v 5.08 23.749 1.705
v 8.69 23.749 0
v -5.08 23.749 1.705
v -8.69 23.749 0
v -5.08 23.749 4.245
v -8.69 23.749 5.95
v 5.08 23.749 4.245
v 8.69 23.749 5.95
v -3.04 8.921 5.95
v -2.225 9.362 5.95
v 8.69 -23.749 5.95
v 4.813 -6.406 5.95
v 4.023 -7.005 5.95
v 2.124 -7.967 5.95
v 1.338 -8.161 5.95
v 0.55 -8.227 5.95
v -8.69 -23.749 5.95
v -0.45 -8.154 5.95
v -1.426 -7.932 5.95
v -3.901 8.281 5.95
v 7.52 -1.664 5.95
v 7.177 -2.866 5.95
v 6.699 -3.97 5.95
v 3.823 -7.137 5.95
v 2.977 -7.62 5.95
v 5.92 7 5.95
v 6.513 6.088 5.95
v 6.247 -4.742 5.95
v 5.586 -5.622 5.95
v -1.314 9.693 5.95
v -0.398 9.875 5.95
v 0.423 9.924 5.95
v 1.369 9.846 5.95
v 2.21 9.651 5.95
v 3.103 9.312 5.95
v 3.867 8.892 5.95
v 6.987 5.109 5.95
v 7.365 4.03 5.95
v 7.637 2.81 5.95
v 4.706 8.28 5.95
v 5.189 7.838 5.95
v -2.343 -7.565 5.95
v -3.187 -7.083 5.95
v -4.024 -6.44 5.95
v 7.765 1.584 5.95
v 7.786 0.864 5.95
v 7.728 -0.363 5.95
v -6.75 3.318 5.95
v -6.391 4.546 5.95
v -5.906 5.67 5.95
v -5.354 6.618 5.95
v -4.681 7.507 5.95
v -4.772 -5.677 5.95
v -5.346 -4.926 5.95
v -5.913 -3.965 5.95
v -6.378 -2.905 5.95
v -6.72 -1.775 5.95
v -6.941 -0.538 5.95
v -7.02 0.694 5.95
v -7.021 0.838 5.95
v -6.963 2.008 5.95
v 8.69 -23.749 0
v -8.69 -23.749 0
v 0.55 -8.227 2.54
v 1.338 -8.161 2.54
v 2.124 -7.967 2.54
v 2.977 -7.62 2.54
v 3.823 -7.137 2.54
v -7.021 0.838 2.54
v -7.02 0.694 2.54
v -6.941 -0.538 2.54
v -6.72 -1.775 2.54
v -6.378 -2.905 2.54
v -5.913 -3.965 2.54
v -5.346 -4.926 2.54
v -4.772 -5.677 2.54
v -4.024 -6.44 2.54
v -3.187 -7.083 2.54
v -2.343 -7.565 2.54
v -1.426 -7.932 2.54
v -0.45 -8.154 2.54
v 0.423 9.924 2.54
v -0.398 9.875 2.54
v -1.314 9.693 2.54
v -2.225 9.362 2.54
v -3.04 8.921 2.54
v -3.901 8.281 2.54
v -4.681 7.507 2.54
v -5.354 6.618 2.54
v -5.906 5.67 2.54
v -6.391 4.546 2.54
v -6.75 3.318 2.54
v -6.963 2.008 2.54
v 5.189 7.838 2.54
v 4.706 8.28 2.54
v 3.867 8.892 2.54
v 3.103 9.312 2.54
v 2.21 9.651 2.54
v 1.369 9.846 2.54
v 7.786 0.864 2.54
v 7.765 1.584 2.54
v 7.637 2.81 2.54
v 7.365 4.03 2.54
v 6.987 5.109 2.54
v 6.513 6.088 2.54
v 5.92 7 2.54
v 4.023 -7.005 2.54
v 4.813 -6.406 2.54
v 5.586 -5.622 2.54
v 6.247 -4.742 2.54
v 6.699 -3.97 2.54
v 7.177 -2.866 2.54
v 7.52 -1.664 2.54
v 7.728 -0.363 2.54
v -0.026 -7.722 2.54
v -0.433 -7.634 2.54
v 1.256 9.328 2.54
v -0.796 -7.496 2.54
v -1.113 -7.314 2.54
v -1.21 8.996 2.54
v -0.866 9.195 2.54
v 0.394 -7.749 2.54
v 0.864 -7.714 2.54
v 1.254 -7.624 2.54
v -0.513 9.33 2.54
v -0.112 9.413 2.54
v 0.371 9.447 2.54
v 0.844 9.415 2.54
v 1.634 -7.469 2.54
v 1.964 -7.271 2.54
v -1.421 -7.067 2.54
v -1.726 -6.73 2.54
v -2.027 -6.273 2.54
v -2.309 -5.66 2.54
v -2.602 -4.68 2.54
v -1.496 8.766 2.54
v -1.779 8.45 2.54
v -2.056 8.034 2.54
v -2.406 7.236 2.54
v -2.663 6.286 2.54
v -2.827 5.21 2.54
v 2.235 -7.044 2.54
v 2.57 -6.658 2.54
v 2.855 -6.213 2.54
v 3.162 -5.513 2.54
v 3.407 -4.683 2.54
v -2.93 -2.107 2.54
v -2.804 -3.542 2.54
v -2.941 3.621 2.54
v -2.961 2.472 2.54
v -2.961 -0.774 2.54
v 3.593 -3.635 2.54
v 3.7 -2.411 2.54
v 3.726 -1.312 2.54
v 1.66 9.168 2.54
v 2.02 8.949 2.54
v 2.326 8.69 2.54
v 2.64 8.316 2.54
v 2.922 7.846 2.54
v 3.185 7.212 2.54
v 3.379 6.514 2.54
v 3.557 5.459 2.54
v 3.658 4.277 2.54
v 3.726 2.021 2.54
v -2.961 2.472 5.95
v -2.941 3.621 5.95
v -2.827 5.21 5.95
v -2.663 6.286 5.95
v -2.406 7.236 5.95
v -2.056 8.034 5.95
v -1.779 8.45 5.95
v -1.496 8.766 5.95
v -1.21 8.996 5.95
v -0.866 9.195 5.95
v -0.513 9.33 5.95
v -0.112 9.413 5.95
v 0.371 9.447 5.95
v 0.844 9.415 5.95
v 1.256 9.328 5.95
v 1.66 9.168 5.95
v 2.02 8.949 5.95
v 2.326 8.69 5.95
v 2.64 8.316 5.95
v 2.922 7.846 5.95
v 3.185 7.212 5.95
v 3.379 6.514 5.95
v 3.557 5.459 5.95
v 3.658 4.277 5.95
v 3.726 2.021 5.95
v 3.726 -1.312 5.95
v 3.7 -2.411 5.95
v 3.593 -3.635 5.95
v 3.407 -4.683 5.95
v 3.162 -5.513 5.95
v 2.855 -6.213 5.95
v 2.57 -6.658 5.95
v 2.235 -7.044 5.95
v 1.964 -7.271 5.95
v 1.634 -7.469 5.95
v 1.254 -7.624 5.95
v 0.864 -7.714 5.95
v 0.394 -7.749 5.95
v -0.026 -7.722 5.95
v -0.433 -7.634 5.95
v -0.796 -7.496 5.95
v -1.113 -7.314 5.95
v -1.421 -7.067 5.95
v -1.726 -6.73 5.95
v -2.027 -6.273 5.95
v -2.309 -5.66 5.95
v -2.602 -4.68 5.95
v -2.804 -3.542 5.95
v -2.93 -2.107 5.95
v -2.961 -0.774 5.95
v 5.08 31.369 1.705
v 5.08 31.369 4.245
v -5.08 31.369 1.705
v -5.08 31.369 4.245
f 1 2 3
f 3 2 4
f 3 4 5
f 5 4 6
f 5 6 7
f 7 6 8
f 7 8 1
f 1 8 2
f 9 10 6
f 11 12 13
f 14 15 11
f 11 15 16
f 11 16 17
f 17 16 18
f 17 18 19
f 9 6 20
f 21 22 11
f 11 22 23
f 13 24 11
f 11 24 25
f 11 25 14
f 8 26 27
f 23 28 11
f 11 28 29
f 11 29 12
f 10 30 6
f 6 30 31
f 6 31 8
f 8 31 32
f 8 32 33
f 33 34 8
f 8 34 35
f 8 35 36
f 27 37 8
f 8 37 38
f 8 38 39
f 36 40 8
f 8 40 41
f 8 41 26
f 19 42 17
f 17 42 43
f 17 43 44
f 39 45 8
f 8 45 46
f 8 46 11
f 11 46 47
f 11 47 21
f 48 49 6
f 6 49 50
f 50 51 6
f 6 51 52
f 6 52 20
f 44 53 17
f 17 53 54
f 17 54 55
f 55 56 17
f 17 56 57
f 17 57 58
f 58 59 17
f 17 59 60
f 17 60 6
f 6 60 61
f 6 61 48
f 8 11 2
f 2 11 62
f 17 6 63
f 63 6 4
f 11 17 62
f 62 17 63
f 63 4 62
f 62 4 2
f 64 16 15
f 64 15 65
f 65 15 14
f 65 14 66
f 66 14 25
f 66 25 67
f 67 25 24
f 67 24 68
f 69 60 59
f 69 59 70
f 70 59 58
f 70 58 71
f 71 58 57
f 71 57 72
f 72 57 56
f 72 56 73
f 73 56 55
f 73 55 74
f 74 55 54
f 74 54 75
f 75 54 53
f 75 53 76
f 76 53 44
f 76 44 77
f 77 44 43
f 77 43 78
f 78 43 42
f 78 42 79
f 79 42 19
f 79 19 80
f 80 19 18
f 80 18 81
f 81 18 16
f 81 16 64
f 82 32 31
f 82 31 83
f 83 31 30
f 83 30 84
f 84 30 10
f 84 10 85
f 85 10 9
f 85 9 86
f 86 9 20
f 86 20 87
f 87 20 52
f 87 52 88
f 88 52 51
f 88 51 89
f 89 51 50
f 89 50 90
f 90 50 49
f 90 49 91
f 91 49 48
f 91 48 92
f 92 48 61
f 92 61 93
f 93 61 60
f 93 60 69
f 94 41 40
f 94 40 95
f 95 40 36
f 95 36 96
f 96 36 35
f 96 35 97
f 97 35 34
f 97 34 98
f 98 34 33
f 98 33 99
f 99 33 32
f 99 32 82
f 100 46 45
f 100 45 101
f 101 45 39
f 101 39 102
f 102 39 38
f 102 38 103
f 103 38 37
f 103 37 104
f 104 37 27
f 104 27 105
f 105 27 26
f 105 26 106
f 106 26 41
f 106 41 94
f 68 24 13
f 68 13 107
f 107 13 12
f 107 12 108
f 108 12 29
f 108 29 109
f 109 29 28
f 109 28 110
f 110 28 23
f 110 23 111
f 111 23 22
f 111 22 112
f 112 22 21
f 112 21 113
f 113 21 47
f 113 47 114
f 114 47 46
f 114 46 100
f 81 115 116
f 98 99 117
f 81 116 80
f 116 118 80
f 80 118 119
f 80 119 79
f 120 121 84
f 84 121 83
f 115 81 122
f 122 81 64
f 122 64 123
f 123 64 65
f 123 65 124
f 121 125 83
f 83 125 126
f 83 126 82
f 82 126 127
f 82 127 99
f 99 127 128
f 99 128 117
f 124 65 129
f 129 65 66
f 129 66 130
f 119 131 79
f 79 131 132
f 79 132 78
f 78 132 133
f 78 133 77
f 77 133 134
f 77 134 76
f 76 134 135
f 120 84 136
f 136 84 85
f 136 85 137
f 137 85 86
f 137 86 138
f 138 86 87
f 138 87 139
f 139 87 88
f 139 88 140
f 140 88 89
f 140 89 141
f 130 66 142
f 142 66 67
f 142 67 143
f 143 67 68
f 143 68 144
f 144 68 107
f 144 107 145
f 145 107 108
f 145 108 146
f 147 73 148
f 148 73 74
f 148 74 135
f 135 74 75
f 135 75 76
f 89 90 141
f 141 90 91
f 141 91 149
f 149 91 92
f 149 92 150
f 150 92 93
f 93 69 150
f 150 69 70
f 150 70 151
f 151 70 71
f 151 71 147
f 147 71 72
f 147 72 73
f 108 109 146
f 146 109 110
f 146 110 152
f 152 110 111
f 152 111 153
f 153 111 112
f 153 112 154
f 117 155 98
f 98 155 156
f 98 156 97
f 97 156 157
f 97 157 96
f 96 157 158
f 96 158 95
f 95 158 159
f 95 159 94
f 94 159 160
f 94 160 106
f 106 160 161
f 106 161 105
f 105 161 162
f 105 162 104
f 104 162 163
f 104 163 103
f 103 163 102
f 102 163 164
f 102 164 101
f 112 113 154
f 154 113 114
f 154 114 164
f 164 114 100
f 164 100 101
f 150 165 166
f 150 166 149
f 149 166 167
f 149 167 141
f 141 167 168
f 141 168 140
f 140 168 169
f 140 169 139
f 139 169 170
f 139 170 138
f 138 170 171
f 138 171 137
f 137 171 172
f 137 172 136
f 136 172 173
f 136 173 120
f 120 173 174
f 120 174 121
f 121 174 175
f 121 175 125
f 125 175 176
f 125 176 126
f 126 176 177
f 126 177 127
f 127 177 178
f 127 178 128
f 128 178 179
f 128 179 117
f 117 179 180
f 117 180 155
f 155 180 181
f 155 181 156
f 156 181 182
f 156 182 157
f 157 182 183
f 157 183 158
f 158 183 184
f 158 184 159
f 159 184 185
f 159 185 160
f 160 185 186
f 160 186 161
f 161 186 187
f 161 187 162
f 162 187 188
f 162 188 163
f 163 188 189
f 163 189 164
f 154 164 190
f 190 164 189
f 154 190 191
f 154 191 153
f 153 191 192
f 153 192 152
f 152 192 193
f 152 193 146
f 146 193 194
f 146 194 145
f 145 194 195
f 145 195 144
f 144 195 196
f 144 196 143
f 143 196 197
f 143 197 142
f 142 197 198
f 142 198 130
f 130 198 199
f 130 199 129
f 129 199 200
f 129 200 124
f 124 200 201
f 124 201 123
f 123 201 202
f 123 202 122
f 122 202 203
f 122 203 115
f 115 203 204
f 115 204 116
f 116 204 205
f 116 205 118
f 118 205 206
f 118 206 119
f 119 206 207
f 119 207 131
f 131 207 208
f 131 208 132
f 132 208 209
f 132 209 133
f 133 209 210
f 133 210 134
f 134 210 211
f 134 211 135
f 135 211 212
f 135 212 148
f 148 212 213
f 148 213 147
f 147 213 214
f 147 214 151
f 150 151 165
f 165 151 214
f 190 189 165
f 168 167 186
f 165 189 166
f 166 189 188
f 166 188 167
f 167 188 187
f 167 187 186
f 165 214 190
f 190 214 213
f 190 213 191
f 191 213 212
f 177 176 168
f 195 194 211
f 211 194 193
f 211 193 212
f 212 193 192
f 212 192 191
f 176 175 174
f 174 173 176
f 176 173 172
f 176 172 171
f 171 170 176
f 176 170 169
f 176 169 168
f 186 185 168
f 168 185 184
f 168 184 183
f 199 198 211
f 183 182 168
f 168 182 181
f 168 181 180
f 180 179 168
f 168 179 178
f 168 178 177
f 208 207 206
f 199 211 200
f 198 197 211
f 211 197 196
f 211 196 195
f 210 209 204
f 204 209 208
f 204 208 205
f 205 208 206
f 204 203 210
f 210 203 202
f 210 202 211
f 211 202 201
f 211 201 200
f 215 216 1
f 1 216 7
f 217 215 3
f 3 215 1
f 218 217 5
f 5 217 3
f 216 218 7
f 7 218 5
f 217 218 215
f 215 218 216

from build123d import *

# Parameters (mm, degrees)
SKETCH1_W           = 17.38
SKETCH1_H           = 47.498
BOSS_EXTRUDE1_DEPTH = 5.95
CUT_EXTRUDE1_DEPTH  = 3.41
SKETCH3_W           = 10.16
SKETCH3_H           = 2.54
BOSS_EXTRUDE2_DEPTH = 7.62


with BuildPart() as part:
    # Sketch1 → Boss-Extrude1 (new body)
    with BuildSketch(Plane.XY):
        Rectangle(SKETCH1_W, SKETCH1_H)
    extrude(amount=BOSS_EXTRUDE1_DEPTH)

    # Sketch2 → Cut-Extrude1 (cut)
    with BuildSketch(Plane.XY.offset(5.95)):
        with BuildLine():
            add(Edge.make_bspline(
                [(0.550302732, -8.226542522), (0.379735674, -8.222982783), (0.040169774, -8.215896034), (-0.463839474, -8.15812923), (-0.957953156, -8.065305599), (-1.440722609, -7.93397308), (-1.914246856, -7.765779149), (-2.375520379, -7.555268135), (-2.829688826, -7.311649662), (-3.271985998, -7.033523648), (-3.695622296, -6.719710376), (-4.100608986, -6.379462985), (-4.482356898, -6.010283848), (-4.834867943, -5.609039062), (-5.170252218, -5.186152795), (-5.479691278, -4.732982281), (-5.767177385, -4.252361088), (-6.026195622, -3.745122286), (-6.262649235, -3.220813492), (-6.463385677, -2.677755241), (-6.63458604, -2.121971034), (-6.777705411, -1.554373675), (-6.884857685, -0.974513718), (-6.963012588, -0.382925268), (-7.013958172, 0.222378933), (-7.018848737, 0.631170896), (-7.021320272, 0.837761211)],
                knots=[0, 0, 0, 0, 0.935229359, 1.861860104, 2.778365642, 3.690213086, 4.602953262, 5.531139642, 6.468158725, 7.427752723, 8.393775505, 9.35721743, 10.326918663, 11.30305363, 12.284324182, 13.285316018, 14.310199044, 15.353667505, 16.407211588, 17.462763663, 18.526572315, 19.595421863, 20.671172186, 21.758519085, 22.867227609, 24, 24, 24, 24], degree=3))
            add(Edge.make_bspline(
                [(-7.021320272, 0.837761211), (-7.019018375, 1.043132905), (-7.014463737, 1.449490733), (-6.960970524, 2.051780421), (-6.891552806, 2.643471616), (-6.774881724, 3.22130983), (-6.639867653, 3.790672361), (-6.466996952, 4.345851556), (-6.265031095, 4.888970049), (-6.033789785, 5.416782083), (-5.779586146, 5.927183042), (-5.493336967, 6.408001352), (-5.191668967, 6.865492143), (-4.867252969, 7.295030074), (-4.519766848, 7.695667308), (-4.148181052, 8.065835718), (-3.757073623, 8.410721014), (-3.34206406, 8.721642737), (-2.915815576, 9.008687913), (-2.469246401, 9.247584189), (-2.017296753, 9.462224383), (-1.549212621, 9.625945007), (-1.073318626, 9.765137224), (-0.584345141, 9.855228751), (-0.084297826, 9.914279226), (0.252836758, 9.921036178), (0.42342487, 9.924455156)],
                knots=[0, 0, 0, 0, 1.133047579, 2.241899783, 3.335215261, 4.419027891, 5.492968413, 6.563480614, 7.625684211, 8.689373082, 9.742419676, 10.770259333, 11.775568516, 12.765501156, 13.738725683, 14.699866048, 15.658232057, 16.613840314, 17.560131627, 18.490982804, 19.406287858, 20.318317554, 21.224515383, 22.140052105, 23.058877329, 24, 24, 24, 24], degree=3))
            add(Edge.make_bspline(
                [(0.42342487, 9.924455156), (0.559148281, 9.921645508), (0.832560203, 9.915985532), (1.243556078, 9.86754079), (1.660769686, 9.798955016), (2.079767463, 9.691960066), (2.500803763, 9.563498986), (2.916875885, 9.402970456), (3.324320864, 9.20650682), (3.725724779, 8.983747658), (4.116057738, 8.734840571), (4.491372535, 8.460890619), (4.850047767, 8.162570258), (5.075596578, 7.946758141), (5.1888081, 7.838433835)],
                knots=[0, 0, 0, 0, 0.915509886, 1.844275157, 2.789506648, 3.766658426, 4.759580674, 5.758727315, 6.772399487, 7.809398841, 8.854855904, 9.894060884, 10.942949104, 12, 12, 12, 12], degree=3))
            add(Edge.make_bspline(
                [(5.1888081, 7.838433835), (5.389513895, 7.625274141), (5.793462123, 7.196260714), (6.305371236, 6.463621807), (6.75436753, 5.667322469), (7.122251761, 4.802237473), (7.423384955, 3.884299926), (7.633961726, 2.916595545), (7.76448607, 1.904889958), (7.778790351, 1.215067432), (7.786072571, 0.863883124)],
                knots=[0, 0, 0, 0, 0.919193343, 1.850003994, 2.80051803, 3.788248458, 4.799621584, 5.832655484, 6.896618542, 8, 8, 8, 8], degree=3))
            add(Edge.make_bspline(
                [(7.786072571, 0.863883124), (7.78352135, 0.647353624), (7.778470942, 0.218710705), (7.728707805, -0.415441181), (7.646780013, -1.034640035), (7.530912683, -1.637393561), (7.386051211, -2.223133728), (7.210848244, -2.789509257), (7.001599425, -3.333806008), (6.762418257, -3.857277855), (6.494119995, -4.359757078), (6.189400077, -4.837839702), (5.857936501, -5.297417839), (5.49711839, -5.733205631), (5.11051594, -6.138422567), (4.702735067, -6.510368516), (4.273224882, -6.842804833), (3.972375106, -7.039318089), (3.823005232, -7.136885589)],
                knots=[0, 0, 0, 0, 1.113772475, 2.204829758, 3.27005864, 4.325555321, 5.360779408, 6.372800007, 7.37346729, 8.358543946, 9.331995144, 10.301336045, 11.272892343, 12.245459715, 13.209547844, 14.151832625, 15.082397426, 16, 16, 16, 16], degree=3))
            add(Edge.make_bspline(
                [(3.823005232, -7.136885589), (3.683147268, -7.222635548), (3.409480365, -7.390426678), (2.994828528, -7.617684008), (2.579610392, -7.803303161), (2.168546265, -7.957578038), (1.759611301, -8.078012453), (1.354366193, -8.164644128), (0.950796586, -8.213781885), (0.683522897, -8.222297827), (0.550302732, -8.226542522)],
                knots=[0, 0, 0, 0, 1.125879178, 2.203062722, 3.242368383, 4.244546476, 5.214349521, 6.165371228, 7.085545794, 8, 8, 8, 8], degree=3))
        make_face()
        with BuildLine():
            Line((-2.961228686, 2.472246611), (-2.961228686, -0.774333977))
            add(Edge.make_bspline(
                [(-2.961228686, -0.774333977), (-2.959967414, -1.061739722), (-2.957525343, -1.618214071), (-2.913735758, -2.423346557), (-2.85314572, -3.170531032), (-2.764518939, -3.859438567), (-2.648829977, -4.489436798), (-2.514239059, -5.064508473), (-2.34558364, -5.578937047), (-2.157613001, -6.039786153), (-1.937036422, -6.441665454), (-1.688349536, -6.790544547), (-1.412867317, -7.087851968), (-1.105878525, -7.330815974), (-0.771392176, -7.520290022), (-0.406109176, -7.649721448), (-0.015966549, -7.736110927), (0.255015986, -7.744563056), (0.393571255, -7.748884688)],
                knots=[0, 0, 0, 0, 1.600918194, 3.099694165, 4.490651416, 5.776535035, 6.967210561, 8.058031995, 9.063903489, 9.980236553, 10.826977267, 11.611606621, 12.361723182, 13.077105204, 13.784521788, 14.492616884, 15.229264454, 16, 16, 16, 16], degree=3))
            add(Edge.make_bspline(
                [(0.393571255, -7.748884688), (0.528245131, -7.743778256), (0.791040711, -7.733813831), (1.172625546, -7.658529716), (1.52755677, -7.529237818), (1.857994163, -7.353860426), (2.162648136, -7.126013205), (2.433191301, -6.842648648), (2.682181228, -6.513316438), (2.906762463, -6.134934559), (3.098668036, -5.70286344), (3.264765351, -5.222717393), (3.41242016, -4.695082575), (3.523579553, -4.114111113), (3.619116063, -3.484551491), (3.677799548, -2.803976451), (3.722465518, -2.074804922), (3.724782967, -1.571754083), (3.725980985, -1.31169904)],
                knots=[0, 0, 0, 0, 0.799284555, 1.559682205, 2.297915387, 3.034706454, 3.773235106, 4.546189228, 5.35267469, 6.22028085, 7.152378913, 8.154412891, 9.234837652, 10.402226976, 11.66392272, 13.013895726, 14.456316111, 16, 16, 16, 16], degree=3))
            Line((3.725980985, -1.31169904), (3.725980985, 2.02071069))
            add(Edge.make_bspline(
                [(3.725980985, 2.02071069), (3.723748812, 2.257046674), (3.71936631, 2.721053283), (3.708560971, 3.40434293), (3.670819489, 4.059661491), (3.633719336, 4.679578677), (3.580286013, 5.245401301), (3.527872185, 5.741345681), (3.463618752, 6.156666795), (3.405129076, 6.40324308), (3.378932715, 6.513679687)],
                knots=[0, 0, 0, 0, 1.256484259, 2.466898997, 3.63225641, 4.745570288, 5.768126857, 6.653192896, 7.396791916, 8, 8, 8, 8], degree=3))
            add(Edge.make_bspline(
                [(3.378932715, 6.513679687), (3.320948737, 6.744215447), (3.210519313, 7.183266572), (2.967701416, 7.785371154), (2.672577177, 8.299006644), (2.320734987, 8.721868888), (1.906870016, 9.046189335), (1.444126514, 9.282221464), (0.924296657, 9.424668031), (0.55992772, 9.439245863), (0.371181044, 9.446797322)],
                knots=[0, 0, 0, 0, 1.239636621, 2.360865202, 3.376378042, 4.320723676, 5.213018588, 6.101502634, 7.016559783, 8, 8, 8, 8], degree=3))
            add(Edge.make_bspline(
                [(0.371181044, 9.446797322), (0.183805449, 9.438721037), (-0.178748844, 9.423094179), (-0.695940302, 9.287727329), (-1.154051557, 9.05336189), (-1.488973453, 8.787875802), (-1.719418951, 8.527231967), (-1.889320993, 8.311817875), (-2.042444584, 8.067599792), (-2.177811432, 7.796765191), (-2.311332426, 7.50616398), (-2.42423477, 7.187961886), (-2.529779888, 6.84706081), (-2.621917406, 6.480649791), (-2.706054572, 6.086538044), (-2.769578415, 5.66104142), (-2.830815218, 5.205995831), (-2.878464235, 4.719303951), (-2.91578194, 4.201662227), (-2.939863819, 3.652856534), (-2.961426072, 3.073215175), (-2.961295697, 2.676269351), (-2.961228686, 2.472246611)],
                knots=[0, 0, 0, 0, 1.298765628, 2.512990303, 3.674827545, 4.847513772, 5.452475075, 6.086065062, 6.74935122, 7.448024762, 8.185900438, 8.966790838, 9.788537819, 10.6614505, 11.587369526, 12.583477292, 13.645459279, 14.77306755, 15.9758581, 17.246032595, 18.584512186, 20, 20, 20, 20], degree=3))
        make_face(mode=Mode.SUBTRACT)
    extrude(amount=-CUT_EXTRUDE1_DEPTH, mode=Mode.SUBTRACT)

    # Sketch3 → Boss-Extrude2 (add)
    with BuildSketch(Plane(origin=(0, 23.749, 0), x_dir=(1, 0, 0), z_dir=(0, 1, 0))):
        with Locations((0, -2.975)):
            Rectangle(SKETCH3_W, SKETCH3_H)
    extrude(amount=BOSS_EXTRUDE2_DEPTH)


solid = part.part
